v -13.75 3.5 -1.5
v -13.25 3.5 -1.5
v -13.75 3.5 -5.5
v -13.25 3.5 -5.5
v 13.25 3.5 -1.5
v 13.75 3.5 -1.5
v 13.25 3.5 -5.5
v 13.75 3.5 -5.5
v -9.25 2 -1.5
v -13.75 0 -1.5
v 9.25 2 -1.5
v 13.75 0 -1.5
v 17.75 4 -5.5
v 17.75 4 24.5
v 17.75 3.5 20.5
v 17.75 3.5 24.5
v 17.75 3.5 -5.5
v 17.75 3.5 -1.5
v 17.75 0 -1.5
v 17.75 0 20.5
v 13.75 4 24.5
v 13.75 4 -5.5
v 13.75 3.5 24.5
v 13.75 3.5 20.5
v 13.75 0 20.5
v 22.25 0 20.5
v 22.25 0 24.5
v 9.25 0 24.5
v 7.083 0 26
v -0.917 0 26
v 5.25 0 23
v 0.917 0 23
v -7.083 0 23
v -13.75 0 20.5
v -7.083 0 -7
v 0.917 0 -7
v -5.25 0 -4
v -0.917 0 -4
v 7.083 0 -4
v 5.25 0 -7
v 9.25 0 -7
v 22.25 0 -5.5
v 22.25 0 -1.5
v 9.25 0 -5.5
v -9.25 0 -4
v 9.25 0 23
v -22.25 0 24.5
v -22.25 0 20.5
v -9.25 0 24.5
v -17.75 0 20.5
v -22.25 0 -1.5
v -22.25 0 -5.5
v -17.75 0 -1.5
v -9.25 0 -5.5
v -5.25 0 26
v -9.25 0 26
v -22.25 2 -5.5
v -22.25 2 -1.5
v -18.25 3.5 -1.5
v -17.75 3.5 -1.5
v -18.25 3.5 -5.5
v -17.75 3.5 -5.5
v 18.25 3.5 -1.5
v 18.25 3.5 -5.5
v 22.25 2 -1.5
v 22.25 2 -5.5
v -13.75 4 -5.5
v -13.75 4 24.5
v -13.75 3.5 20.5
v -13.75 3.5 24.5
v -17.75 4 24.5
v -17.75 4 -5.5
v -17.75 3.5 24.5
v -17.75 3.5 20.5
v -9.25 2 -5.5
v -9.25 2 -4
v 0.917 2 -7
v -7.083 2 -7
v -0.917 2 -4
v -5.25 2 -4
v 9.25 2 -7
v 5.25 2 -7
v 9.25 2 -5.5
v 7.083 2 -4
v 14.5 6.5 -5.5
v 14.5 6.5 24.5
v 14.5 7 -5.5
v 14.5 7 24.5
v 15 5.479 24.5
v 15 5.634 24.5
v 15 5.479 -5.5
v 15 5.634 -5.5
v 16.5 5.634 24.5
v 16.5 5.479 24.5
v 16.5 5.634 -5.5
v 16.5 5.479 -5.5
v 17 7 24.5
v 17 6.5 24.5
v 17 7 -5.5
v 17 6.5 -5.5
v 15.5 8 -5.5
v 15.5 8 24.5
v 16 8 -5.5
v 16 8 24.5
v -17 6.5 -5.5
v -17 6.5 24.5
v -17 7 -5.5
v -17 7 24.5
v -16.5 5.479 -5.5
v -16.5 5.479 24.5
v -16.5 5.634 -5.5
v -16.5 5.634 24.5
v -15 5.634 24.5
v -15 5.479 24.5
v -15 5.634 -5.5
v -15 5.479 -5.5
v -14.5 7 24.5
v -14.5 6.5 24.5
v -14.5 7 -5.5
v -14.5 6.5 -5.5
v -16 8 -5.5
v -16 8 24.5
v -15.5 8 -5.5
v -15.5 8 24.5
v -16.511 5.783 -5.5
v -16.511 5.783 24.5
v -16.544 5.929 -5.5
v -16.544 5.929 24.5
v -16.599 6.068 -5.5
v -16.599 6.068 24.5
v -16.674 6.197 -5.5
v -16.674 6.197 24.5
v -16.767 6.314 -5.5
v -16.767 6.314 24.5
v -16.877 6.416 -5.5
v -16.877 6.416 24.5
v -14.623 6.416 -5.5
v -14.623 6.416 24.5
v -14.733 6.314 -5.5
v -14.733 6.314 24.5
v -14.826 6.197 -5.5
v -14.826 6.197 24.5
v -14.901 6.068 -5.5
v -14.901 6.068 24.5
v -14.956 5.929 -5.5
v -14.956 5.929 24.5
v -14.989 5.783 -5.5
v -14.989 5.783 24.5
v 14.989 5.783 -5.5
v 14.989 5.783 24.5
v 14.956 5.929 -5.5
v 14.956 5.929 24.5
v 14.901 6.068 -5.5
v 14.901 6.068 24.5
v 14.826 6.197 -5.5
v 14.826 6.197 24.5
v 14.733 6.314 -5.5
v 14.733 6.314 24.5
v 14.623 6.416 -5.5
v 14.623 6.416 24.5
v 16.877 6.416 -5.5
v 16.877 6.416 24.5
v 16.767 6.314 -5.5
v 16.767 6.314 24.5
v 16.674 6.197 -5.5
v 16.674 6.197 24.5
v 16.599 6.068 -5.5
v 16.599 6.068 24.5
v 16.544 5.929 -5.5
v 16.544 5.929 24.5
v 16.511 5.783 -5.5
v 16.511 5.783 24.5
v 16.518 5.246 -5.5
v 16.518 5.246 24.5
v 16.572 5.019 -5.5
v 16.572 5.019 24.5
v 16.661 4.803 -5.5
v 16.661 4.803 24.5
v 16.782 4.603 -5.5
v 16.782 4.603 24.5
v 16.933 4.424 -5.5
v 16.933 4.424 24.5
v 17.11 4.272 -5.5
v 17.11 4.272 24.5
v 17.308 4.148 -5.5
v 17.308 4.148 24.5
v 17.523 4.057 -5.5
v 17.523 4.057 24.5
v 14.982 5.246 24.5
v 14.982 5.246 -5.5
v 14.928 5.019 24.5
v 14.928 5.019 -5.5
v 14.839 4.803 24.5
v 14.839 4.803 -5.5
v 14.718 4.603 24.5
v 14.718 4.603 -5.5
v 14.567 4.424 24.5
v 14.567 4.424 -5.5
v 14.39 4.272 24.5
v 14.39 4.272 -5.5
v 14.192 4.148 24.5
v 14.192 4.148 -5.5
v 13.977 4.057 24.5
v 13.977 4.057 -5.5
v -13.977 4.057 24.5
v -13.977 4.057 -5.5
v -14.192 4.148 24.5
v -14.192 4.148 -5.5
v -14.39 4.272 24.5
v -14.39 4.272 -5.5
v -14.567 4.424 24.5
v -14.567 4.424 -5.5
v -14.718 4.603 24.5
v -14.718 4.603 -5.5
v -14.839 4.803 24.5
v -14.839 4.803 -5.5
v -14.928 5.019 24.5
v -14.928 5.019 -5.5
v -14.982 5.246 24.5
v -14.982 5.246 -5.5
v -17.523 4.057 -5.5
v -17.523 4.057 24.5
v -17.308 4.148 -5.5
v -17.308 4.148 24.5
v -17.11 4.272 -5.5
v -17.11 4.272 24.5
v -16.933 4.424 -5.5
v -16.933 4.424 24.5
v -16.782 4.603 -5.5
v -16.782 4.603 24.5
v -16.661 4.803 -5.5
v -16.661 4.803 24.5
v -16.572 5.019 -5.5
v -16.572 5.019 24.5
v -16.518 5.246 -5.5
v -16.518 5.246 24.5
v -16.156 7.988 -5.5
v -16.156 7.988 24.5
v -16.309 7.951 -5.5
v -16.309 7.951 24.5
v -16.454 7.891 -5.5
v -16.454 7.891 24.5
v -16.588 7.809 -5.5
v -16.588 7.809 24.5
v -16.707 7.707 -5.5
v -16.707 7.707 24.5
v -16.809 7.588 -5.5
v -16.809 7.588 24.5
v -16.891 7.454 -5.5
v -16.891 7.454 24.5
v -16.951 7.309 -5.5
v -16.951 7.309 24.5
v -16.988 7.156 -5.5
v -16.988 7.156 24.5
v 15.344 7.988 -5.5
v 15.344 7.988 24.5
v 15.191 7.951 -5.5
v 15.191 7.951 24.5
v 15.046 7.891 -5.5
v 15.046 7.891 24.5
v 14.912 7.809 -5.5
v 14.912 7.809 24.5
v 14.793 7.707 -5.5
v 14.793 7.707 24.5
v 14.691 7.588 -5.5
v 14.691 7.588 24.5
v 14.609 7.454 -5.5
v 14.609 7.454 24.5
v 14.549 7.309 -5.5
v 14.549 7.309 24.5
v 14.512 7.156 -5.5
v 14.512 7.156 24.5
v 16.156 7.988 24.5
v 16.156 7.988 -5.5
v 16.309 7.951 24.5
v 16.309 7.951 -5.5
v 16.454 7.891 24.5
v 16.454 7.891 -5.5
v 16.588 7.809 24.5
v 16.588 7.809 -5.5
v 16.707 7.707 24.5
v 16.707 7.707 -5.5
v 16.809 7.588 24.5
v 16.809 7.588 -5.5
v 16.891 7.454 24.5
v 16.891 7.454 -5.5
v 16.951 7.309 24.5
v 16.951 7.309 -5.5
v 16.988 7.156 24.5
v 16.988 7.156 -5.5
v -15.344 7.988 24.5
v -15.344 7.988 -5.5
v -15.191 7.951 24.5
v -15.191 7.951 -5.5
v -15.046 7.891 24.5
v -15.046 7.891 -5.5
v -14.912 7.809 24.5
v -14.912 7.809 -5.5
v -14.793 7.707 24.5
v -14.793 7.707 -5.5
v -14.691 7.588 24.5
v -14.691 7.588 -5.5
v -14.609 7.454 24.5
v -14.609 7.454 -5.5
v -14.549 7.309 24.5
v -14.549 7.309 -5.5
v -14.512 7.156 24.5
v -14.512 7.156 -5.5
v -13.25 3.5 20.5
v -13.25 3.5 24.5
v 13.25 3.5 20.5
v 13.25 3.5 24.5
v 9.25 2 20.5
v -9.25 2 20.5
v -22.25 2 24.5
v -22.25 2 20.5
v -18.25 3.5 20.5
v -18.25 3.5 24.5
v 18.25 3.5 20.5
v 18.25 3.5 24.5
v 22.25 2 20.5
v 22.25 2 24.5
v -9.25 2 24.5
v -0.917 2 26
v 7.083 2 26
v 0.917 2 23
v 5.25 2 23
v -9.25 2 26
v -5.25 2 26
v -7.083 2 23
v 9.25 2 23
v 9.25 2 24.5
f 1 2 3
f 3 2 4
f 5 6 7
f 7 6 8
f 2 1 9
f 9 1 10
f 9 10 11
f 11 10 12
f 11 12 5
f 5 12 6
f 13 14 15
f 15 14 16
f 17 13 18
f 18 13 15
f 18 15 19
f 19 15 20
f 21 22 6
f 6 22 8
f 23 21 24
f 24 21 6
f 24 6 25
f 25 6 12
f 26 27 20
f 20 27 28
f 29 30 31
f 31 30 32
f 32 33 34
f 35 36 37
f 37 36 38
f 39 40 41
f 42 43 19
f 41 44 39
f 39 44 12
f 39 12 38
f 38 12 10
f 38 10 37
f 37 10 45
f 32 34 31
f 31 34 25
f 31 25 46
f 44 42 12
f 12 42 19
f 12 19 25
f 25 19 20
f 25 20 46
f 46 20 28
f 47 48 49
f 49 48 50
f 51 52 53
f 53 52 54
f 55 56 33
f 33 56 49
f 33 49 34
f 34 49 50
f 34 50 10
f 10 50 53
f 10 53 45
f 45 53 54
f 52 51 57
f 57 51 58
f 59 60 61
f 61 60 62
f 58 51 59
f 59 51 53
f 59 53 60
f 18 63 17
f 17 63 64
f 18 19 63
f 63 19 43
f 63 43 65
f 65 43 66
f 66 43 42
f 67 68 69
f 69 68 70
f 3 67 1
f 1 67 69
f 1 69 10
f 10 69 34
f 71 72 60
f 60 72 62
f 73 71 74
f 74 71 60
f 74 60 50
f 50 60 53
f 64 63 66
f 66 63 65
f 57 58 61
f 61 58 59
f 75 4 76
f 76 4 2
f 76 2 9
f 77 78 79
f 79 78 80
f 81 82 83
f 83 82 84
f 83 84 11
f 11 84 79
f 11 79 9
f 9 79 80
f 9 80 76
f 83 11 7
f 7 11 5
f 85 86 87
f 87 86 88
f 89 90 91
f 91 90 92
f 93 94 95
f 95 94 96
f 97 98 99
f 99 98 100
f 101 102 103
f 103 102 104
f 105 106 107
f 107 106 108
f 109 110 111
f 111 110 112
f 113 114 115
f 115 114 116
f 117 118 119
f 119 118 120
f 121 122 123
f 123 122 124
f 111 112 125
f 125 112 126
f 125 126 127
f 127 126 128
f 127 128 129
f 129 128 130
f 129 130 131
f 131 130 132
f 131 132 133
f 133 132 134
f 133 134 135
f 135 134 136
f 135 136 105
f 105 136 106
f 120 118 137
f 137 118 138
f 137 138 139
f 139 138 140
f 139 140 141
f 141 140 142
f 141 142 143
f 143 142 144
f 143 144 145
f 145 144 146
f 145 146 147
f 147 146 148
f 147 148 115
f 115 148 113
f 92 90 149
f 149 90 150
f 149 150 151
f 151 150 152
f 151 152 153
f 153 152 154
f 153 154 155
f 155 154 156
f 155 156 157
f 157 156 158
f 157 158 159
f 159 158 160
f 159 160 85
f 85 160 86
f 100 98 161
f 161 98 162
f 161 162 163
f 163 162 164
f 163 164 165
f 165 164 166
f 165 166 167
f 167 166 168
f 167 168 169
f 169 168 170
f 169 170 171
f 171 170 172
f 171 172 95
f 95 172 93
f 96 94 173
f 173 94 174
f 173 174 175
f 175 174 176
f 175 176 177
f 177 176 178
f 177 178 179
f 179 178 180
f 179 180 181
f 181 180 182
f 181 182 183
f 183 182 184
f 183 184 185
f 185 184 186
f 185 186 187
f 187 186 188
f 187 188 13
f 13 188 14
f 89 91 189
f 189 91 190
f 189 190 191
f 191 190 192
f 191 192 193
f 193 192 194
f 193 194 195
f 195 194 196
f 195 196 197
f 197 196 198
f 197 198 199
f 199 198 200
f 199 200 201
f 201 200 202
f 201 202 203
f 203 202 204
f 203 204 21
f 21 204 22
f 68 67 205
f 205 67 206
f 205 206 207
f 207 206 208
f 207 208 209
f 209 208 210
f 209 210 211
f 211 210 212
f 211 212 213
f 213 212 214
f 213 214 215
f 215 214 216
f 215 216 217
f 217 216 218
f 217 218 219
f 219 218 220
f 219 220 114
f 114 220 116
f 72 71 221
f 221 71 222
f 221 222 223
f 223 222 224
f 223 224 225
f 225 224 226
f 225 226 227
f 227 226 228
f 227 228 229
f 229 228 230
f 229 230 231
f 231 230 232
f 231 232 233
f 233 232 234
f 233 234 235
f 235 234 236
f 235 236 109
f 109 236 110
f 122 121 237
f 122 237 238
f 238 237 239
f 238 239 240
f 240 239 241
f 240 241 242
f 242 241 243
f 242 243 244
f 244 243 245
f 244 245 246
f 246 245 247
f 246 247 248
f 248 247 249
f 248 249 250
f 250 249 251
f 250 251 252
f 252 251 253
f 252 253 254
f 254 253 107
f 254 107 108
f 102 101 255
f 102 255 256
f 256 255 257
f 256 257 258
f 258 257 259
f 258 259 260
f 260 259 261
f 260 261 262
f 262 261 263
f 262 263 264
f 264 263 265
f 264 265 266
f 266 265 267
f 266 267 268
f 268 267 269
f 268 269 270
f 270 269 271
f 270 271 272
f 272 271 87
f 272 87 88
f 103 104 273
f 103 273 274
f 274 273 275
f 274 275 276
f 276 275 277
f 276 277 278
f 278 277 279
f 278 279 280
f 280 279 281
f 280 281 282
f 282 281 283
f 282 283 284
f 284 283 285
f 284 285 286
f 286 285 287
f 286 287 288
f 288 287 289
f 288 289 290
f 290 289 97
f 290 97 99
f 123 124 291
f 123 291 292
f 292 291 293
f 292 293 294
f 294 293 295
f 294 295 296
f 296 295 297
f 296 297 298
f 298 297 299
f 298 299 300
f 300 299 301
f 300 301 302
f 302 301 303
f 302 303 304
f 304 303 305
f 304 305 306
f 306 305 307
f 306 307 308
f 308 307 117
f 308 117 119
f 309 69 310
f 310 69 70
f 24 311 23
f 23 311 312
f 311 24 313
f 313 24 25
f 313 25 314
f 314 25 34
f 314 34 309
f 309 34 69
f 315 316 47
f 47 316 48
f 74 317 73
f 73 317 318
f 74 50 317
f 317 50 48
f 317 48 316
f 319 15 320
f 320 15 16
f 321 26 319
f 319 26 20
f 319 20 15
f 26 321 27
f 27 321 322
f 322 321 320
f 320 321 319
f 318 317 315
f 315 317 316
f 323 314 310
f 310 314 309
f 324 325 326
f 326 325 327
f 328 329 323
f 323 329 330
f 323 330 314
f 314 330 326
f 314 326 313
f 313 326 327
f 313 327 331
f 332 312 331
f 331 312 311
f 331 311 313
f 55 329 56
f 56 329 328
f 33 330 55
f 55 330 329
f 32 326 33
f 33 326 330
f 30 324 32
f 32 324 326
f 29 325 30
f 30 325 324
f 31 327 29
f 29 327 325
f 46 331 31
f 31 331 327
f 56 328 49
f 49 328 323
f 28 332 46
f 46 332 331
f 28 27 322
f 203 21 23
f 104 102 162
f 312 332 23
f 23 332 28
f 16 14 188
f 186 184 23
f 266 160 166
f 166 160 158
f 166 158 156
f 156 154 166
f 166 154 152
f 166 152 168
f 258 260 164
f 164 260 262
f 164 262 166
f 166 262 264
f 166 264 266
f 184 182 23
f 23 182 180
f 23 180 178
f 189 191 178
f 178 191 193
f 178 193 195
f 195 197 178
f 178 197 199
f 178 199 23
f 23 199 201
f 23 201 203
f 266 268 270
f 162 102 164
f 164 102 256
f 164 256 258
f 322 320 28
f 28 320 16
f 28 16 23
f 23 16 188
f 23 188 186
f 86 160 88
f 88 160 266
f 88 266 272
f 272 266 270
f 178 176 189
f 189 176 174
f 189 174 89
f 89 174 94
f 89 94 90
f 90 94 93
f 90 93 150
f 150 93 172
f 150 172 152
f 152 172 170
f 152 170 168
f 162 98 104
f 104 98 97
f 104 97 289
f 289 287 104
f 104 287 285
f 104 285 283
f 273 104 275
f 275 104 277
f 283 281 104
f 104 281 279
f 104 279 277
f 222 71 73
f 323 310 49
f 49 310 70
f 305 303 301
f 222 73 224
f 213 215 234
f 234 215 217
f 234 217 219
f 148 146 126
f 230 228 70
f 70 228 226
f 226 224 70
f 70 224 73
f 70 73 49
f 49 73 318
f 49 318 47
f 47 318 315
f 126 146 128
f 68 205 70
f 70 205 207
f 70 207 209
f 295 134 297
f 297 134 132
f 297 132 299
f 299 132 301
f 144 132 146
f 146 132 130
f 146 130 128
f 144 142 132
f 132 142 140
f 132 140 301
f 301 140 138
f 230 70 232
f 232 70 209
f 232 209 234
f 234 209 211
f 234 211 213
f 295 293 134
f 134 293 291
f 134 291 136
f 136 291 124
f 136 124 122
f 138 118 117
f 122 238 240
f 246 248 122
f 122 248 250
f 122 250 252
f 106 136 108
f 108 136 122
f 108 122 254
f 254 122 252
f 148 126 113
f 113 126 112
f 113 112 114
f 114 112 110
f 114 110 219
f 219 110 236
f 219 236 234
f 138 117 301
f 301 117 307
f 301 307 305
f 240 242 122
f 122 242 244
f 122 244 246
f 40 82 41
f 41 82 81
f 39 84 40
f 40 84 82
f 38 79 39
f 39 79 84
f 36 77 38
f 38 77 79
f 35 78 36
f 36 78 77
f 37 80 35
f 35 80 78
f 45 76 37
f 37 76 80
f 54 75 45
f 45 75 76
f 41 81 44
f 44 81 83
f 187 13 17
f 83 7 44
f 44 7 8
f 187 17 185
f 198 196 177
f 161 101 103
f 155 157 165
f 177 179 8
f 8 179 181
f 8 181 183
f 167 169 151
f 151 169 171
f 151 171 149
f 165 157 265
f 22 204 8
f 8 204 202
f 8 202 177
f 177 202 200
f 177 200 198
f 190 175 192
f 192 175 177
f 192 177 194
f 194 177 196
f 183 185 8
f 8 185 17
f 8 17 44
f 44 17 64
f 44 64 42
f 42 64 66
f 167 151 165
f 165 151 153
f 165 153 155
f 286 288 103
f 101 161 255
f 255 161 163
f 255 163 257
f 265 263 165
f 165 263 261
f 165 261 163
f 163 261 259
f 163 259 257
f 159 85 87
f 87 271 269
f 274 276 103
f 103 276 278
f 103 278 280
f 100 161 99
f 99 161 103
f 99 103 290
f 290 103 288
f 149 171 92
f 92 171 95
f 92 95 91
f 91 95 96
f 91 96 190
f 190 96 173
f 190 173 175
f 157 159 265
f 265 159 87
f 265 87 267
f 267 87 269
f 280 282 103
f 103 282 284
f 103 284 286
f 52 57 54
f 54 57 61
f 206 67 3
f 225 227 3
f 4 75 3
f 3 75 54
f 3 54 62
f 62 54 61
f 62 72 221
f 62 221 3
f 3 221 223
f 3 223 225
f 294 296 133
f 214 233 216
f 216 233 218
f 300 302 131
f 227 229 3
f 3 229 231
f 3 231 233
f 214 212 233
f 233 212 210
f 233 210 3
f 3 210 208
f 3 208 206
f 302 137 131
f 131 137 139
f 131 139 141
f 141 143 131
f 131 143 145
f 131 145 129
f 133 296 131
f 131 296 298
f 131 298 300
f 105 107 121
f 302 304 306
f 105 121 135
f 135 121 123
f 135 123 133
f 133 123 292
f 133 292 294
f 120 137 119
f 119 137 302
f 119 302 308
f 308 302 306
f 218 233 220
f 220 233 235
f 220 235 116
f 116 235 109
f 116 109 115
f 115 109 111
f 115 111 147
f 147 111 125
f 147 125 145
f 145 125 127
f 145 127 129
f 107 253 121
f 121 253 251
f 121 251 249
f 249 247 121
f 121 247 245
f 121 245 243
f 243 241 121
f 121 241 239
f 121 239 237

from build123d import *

# Parameters (mm, degrees)
SKETCH_1_W               = 4
SKETCH_1_H               = 11
SKETCH_1_H_2             = 8
EXTRUDE_1_DEPTH          = 4
SKETCH_1_7_W             = 44.5
SKETCH_1_7_H             = 8
EXTRUDE_2_DEPTH          = 3.5
SKETCH_2_W               = 18.5
SKETCH_2_H               = 1.5
CUT_EXTRUDE_1_DEPTH      = 30.53070436
SKETCH_2_3_W             = 2.5
SKETCH_2_3_H             = 1.5
EXTRUDE_4_DEPTH          = 19
FILLET_1_R               = 1
FILLET_2_R               = 1.5
FILLET_3_R               = 1
CUT_EXTRUDE_2_DEPTH      = 37.65122781
CUT_EXTRUDE_2_DEPTH_BACK = 37.65122781


with BuildPart() as part:
    # 草图1 → 凸台-拉伸1 (new body)
    with BuildSketch(Plane(origin=(0, 0, 0), x_dir=(1, 0, 0), z_dir=(0, 1, 0))):
        with Locations((-15.75, -4)):
            Rectangle(SKETCH_1_W, SKETCH_1_H)
        with Locations((15.75, -4)):
            Rectangle(SKETCH_1_W, SKETCH_1_H)
        with Locations((15.75, 5.5)):
            Rectangle(SKETCH_1_W, SKETCH_1_H_2)
        with Locations((-15.75, 5.5)):
            Rectangle(SKETCH_1_W, SKETCH_1_H_2)
    extrude(amount=EXTRUDE_1_DEPTH)

    # 草图1<7> → 凸台-拉伸2 (add)
    with BuildSketch(Plane(origin=(0, 0, 0), x_dir=(1, 0, 0), z_dir=(0, 1, 0))):
        with Locations((0, 5.5)):
            Rectangle(SKETCH_1_7_W, SKETCH_1_7_H)
    extrude(amount=EXTRUDE_2_DEPTH)

    # 草图2 → 切除-拉伸1 (cut, through all)
    with BuildSketch(Plane(origin=(0, 0, -9.5), x_dir=(-1, 0, 0), z_dir=(0, 0, -1))):
        with Locations((0, 2.75)):
            Rectangle(SKETCH_2_W, SKETCH_2_H)
        Polygon((13.25, 3.5), (9.25, 3.5), (9.25, 2), align=None)
        Polygon((-9.25, 3.5), (-13.25, 3.5), (-9.25, 2), align=None)
        Polygon((-22.25, 3.5), (-22.25, 2), (-18.25, 3.5), align=None)
        Polygon((22.25, 3.5), (18.25, 3.5), (22.25, 2), align=None)
    extrude(amount=-CUT_EXTRUDE_1_DEPTH, mode=Mode.SUBTRACT)

    # 草图2<3> → 凸台-拉伸4 (add, through all)
    with BuildSketch(Plane(origin=(0, 0, -9.5), x_dir=(-1, 0, 0), z_dir=(0, 0, -1))):
        with Locations((-15.75, 7.25)):
            Rectangle(SKETCH_2_3_W, SKETCH_2_3_H)
        Polygon((-15, 6.5), (-16.5, 6.5), (-16.5, 4), (-15.75, 4), (-15, 4), align=None)
        with Locations((15.75, 7.25)):
            Rectangle(SKETCH_2_3_W, SKETCH_2_3_H)
        Polygon((16.5, 6.5), (15, 6.5), (15, 4), (15.75, 4), (16.5, 4), align=None)
    extrude(amount=-EXTRUDE_4_DEPTH)

    # 圆角1
    # the kernel refuses this fillet: 1 mm, written as the material it adds along each edge
    with BuildSketch(Plane(origin=(-16.5, 6.5, -9.5), x_dir=(0, -1, 0), z_dir=(0, 0, 1))) as fillet_1_piece_1:
        with BuildLine():
            CenterArc((0.866025404, -1), FILLET_1_R, 90, 60)
            Line((0, -0.5), (-0.017320508, -0.49))
            ThreePointArc((-0.017320508, -0.49), (-0.02, -0.25), (-0.02, 0))
            Line((-0.02, 0), (0, 0.02))
            Line((0, 0.02), (0.866025404, 0.02))
            Line((0.866025404, 0.02), (0.866025404, 0))
        make_face()
    extrude(amount=19)
    with BuildSketch(Plane(origin=(-15, 6.5, -9.5), x_dir=(0, -1, 0), z_dir=(0, 0, 1)), Plane(origin=(16.5, 6.5, -9.5), x_dir=(0, -1, 0), z_dir=(0, 0, 1))) as fillet_1_piece_2:
        with BuildLine():
            CenterArc((0.866025404, 1), FILLET_1_R, 210, 60)
            Line((0, 0.5), (-0.017320508, 0.49))
            ThreePointArc((-0.017320508, 0.49), (-0.02, 0.25), (-0.02, 0))
            Line((-0.02, 0), (0, -0.02))
            Line((0, -0.02), (0.866025404, -0.02))
            Line((0.866025404, -0.02), (0.866025404, 0))
        make_face()
    extrude(amount=19)
    with BuildSketch(Plane(origin=(15, 6.5, -9.5), x_dir=(-1, 0, 0), z_dir=(0, 0, 1))) as fillet_1_piece_3:
        with BuildLine():
            CenterArc((1, 0.866025404), FILLET_1_R, 180, 60)
            Line((0, 0.866025404), (-0.02, 0.866025404))
            Line((-0.02, 0.866025404), (-0.02, 0))
            Line((-0.02, 0), (0, -0.02))
            ThreePointArc((0, -0.02), (0.25, -0.02), (0.49, -0.017320508))
            Line((0.49, -0.017320508), (0.5, 0))
        make_face()
    extrude(amount=19)

    # 圆角2
    # the kernel refuses this fillet: 1.5 mm, written as the material it adds along each edge
    with BuildSketch(Plane(origin=(16.5, 4, -9.5), x_dir=(1, 0, 0), z_dir=(0, 0, 1)), Plane(origin=(-15, 4, -9.5), x_dir=(1, 0, 0), z_dir=(0, 0, 1))) as fillet_2_piece_1:
        with BuildLine():
            CenterArc((1.5, 1.479019946), FILLET_2_R, 180, 80.405931773)
            Line((0, 1.479019946), (-0.03, 1.479019946))
            Line((-0.03, 1.479019946), (-0.03, 0))
            Line((-0.03, 0), (0, -0.03))
            ThreePointArc((0, -0.03), (0.625, -0.03), (1.245, -0.029580399))
            Line((1.245, -0.029580399), (1.25, 0))
        make_face()
    extrude(amount=19)
    with BuildSketch(Plane(origin=(15, 4, -9.5), x_dir=(0, 1, 0), z_dir=(0, 0, 1)), Plane(origin=(-16.5, 4, -9.5), x_dir=(0, 1, 0), z_dir=(0, 0, 1))) as fillet_2_piece_2:
        with BuildLine():
            CenterArc((1.479019946, 1.5), FILLET_2_R, 189.594068227, 80.405931773)
            Line((0, 1.25), (-0.029580399, 1.245))
            ThreePointArc((-0.029580399, 1.245), (-0.03, 0.625), (-0.03, 0))
            Line((-0.03, 0), (0, -0.03))
            Line((0, -0.03), (1.479019946, -0.03))
            Line((1.479019946, -0.03), (1.479019946, 0))
        make_face()
    extrude(amount=19)

    # 圆角3
    fillet_3_edges = [part.edges().sort_by_distance(p)[0] for p in [
        (14.5, 8, 0),
        (17, 8, 0),
        (-17, 8, 0),
        (-14.5, 8, 0),
    ]]
    fillet(fillet_3_edges, radius=FILLET_3_R)

    # 镜向2: part across plane


with BuildPart() as part_1:
    add(part.part)
    add(part.part.mirror(Plane(origin=(0, 4, 9.5), x_dir=(1, 0, 0), z_dir=(0, 0, -1))))

    # 草图9 → 切除-拉伸2 (cut, two sides: drawn at the far end of the back side and taken through both)
    with BuildSketch(Plane(origin=(0, 2, 0), x_dir=(1, 0, 0), z_dir=(0, 1, 0)).offset(-CUT_EXTRUDE_2_DEPTH_BACK)):
        Polygon((-22.25, 5.5), (-9.25, 5.5), (-9.25, 4), (-5.25, 4), (-7.083333333, 7), (0.916666667, 7), (-0.916666667, 4), (7.083333333, 4), (5.25, 7), (9.25, 7), (9.25, 5.5), (22.25, 5.5), (22.25, 9.5), (-22.25, 9.5), align=None)
        Polygon((-22.25, -24.5), (-9.25, -24.5), (-9.25, -26), (-5.25, -26), (-7.083333333, -23), (0.916666667, -23), (-0.916666667, -26), (7.083333333, -26), (5.25, -23), (9.25, -23), (9.25, -24.5), (22.25, -24.5), (22.25, -28.5), (-22.25, -28.5), align=None)
    extrude(amount=CUT_EXTRUDE_2_DEPTH + CUT_EXTRUDE_2_DEPTH_BACK, mode=Mode.SUBTRACT)


solid = part_1.part
